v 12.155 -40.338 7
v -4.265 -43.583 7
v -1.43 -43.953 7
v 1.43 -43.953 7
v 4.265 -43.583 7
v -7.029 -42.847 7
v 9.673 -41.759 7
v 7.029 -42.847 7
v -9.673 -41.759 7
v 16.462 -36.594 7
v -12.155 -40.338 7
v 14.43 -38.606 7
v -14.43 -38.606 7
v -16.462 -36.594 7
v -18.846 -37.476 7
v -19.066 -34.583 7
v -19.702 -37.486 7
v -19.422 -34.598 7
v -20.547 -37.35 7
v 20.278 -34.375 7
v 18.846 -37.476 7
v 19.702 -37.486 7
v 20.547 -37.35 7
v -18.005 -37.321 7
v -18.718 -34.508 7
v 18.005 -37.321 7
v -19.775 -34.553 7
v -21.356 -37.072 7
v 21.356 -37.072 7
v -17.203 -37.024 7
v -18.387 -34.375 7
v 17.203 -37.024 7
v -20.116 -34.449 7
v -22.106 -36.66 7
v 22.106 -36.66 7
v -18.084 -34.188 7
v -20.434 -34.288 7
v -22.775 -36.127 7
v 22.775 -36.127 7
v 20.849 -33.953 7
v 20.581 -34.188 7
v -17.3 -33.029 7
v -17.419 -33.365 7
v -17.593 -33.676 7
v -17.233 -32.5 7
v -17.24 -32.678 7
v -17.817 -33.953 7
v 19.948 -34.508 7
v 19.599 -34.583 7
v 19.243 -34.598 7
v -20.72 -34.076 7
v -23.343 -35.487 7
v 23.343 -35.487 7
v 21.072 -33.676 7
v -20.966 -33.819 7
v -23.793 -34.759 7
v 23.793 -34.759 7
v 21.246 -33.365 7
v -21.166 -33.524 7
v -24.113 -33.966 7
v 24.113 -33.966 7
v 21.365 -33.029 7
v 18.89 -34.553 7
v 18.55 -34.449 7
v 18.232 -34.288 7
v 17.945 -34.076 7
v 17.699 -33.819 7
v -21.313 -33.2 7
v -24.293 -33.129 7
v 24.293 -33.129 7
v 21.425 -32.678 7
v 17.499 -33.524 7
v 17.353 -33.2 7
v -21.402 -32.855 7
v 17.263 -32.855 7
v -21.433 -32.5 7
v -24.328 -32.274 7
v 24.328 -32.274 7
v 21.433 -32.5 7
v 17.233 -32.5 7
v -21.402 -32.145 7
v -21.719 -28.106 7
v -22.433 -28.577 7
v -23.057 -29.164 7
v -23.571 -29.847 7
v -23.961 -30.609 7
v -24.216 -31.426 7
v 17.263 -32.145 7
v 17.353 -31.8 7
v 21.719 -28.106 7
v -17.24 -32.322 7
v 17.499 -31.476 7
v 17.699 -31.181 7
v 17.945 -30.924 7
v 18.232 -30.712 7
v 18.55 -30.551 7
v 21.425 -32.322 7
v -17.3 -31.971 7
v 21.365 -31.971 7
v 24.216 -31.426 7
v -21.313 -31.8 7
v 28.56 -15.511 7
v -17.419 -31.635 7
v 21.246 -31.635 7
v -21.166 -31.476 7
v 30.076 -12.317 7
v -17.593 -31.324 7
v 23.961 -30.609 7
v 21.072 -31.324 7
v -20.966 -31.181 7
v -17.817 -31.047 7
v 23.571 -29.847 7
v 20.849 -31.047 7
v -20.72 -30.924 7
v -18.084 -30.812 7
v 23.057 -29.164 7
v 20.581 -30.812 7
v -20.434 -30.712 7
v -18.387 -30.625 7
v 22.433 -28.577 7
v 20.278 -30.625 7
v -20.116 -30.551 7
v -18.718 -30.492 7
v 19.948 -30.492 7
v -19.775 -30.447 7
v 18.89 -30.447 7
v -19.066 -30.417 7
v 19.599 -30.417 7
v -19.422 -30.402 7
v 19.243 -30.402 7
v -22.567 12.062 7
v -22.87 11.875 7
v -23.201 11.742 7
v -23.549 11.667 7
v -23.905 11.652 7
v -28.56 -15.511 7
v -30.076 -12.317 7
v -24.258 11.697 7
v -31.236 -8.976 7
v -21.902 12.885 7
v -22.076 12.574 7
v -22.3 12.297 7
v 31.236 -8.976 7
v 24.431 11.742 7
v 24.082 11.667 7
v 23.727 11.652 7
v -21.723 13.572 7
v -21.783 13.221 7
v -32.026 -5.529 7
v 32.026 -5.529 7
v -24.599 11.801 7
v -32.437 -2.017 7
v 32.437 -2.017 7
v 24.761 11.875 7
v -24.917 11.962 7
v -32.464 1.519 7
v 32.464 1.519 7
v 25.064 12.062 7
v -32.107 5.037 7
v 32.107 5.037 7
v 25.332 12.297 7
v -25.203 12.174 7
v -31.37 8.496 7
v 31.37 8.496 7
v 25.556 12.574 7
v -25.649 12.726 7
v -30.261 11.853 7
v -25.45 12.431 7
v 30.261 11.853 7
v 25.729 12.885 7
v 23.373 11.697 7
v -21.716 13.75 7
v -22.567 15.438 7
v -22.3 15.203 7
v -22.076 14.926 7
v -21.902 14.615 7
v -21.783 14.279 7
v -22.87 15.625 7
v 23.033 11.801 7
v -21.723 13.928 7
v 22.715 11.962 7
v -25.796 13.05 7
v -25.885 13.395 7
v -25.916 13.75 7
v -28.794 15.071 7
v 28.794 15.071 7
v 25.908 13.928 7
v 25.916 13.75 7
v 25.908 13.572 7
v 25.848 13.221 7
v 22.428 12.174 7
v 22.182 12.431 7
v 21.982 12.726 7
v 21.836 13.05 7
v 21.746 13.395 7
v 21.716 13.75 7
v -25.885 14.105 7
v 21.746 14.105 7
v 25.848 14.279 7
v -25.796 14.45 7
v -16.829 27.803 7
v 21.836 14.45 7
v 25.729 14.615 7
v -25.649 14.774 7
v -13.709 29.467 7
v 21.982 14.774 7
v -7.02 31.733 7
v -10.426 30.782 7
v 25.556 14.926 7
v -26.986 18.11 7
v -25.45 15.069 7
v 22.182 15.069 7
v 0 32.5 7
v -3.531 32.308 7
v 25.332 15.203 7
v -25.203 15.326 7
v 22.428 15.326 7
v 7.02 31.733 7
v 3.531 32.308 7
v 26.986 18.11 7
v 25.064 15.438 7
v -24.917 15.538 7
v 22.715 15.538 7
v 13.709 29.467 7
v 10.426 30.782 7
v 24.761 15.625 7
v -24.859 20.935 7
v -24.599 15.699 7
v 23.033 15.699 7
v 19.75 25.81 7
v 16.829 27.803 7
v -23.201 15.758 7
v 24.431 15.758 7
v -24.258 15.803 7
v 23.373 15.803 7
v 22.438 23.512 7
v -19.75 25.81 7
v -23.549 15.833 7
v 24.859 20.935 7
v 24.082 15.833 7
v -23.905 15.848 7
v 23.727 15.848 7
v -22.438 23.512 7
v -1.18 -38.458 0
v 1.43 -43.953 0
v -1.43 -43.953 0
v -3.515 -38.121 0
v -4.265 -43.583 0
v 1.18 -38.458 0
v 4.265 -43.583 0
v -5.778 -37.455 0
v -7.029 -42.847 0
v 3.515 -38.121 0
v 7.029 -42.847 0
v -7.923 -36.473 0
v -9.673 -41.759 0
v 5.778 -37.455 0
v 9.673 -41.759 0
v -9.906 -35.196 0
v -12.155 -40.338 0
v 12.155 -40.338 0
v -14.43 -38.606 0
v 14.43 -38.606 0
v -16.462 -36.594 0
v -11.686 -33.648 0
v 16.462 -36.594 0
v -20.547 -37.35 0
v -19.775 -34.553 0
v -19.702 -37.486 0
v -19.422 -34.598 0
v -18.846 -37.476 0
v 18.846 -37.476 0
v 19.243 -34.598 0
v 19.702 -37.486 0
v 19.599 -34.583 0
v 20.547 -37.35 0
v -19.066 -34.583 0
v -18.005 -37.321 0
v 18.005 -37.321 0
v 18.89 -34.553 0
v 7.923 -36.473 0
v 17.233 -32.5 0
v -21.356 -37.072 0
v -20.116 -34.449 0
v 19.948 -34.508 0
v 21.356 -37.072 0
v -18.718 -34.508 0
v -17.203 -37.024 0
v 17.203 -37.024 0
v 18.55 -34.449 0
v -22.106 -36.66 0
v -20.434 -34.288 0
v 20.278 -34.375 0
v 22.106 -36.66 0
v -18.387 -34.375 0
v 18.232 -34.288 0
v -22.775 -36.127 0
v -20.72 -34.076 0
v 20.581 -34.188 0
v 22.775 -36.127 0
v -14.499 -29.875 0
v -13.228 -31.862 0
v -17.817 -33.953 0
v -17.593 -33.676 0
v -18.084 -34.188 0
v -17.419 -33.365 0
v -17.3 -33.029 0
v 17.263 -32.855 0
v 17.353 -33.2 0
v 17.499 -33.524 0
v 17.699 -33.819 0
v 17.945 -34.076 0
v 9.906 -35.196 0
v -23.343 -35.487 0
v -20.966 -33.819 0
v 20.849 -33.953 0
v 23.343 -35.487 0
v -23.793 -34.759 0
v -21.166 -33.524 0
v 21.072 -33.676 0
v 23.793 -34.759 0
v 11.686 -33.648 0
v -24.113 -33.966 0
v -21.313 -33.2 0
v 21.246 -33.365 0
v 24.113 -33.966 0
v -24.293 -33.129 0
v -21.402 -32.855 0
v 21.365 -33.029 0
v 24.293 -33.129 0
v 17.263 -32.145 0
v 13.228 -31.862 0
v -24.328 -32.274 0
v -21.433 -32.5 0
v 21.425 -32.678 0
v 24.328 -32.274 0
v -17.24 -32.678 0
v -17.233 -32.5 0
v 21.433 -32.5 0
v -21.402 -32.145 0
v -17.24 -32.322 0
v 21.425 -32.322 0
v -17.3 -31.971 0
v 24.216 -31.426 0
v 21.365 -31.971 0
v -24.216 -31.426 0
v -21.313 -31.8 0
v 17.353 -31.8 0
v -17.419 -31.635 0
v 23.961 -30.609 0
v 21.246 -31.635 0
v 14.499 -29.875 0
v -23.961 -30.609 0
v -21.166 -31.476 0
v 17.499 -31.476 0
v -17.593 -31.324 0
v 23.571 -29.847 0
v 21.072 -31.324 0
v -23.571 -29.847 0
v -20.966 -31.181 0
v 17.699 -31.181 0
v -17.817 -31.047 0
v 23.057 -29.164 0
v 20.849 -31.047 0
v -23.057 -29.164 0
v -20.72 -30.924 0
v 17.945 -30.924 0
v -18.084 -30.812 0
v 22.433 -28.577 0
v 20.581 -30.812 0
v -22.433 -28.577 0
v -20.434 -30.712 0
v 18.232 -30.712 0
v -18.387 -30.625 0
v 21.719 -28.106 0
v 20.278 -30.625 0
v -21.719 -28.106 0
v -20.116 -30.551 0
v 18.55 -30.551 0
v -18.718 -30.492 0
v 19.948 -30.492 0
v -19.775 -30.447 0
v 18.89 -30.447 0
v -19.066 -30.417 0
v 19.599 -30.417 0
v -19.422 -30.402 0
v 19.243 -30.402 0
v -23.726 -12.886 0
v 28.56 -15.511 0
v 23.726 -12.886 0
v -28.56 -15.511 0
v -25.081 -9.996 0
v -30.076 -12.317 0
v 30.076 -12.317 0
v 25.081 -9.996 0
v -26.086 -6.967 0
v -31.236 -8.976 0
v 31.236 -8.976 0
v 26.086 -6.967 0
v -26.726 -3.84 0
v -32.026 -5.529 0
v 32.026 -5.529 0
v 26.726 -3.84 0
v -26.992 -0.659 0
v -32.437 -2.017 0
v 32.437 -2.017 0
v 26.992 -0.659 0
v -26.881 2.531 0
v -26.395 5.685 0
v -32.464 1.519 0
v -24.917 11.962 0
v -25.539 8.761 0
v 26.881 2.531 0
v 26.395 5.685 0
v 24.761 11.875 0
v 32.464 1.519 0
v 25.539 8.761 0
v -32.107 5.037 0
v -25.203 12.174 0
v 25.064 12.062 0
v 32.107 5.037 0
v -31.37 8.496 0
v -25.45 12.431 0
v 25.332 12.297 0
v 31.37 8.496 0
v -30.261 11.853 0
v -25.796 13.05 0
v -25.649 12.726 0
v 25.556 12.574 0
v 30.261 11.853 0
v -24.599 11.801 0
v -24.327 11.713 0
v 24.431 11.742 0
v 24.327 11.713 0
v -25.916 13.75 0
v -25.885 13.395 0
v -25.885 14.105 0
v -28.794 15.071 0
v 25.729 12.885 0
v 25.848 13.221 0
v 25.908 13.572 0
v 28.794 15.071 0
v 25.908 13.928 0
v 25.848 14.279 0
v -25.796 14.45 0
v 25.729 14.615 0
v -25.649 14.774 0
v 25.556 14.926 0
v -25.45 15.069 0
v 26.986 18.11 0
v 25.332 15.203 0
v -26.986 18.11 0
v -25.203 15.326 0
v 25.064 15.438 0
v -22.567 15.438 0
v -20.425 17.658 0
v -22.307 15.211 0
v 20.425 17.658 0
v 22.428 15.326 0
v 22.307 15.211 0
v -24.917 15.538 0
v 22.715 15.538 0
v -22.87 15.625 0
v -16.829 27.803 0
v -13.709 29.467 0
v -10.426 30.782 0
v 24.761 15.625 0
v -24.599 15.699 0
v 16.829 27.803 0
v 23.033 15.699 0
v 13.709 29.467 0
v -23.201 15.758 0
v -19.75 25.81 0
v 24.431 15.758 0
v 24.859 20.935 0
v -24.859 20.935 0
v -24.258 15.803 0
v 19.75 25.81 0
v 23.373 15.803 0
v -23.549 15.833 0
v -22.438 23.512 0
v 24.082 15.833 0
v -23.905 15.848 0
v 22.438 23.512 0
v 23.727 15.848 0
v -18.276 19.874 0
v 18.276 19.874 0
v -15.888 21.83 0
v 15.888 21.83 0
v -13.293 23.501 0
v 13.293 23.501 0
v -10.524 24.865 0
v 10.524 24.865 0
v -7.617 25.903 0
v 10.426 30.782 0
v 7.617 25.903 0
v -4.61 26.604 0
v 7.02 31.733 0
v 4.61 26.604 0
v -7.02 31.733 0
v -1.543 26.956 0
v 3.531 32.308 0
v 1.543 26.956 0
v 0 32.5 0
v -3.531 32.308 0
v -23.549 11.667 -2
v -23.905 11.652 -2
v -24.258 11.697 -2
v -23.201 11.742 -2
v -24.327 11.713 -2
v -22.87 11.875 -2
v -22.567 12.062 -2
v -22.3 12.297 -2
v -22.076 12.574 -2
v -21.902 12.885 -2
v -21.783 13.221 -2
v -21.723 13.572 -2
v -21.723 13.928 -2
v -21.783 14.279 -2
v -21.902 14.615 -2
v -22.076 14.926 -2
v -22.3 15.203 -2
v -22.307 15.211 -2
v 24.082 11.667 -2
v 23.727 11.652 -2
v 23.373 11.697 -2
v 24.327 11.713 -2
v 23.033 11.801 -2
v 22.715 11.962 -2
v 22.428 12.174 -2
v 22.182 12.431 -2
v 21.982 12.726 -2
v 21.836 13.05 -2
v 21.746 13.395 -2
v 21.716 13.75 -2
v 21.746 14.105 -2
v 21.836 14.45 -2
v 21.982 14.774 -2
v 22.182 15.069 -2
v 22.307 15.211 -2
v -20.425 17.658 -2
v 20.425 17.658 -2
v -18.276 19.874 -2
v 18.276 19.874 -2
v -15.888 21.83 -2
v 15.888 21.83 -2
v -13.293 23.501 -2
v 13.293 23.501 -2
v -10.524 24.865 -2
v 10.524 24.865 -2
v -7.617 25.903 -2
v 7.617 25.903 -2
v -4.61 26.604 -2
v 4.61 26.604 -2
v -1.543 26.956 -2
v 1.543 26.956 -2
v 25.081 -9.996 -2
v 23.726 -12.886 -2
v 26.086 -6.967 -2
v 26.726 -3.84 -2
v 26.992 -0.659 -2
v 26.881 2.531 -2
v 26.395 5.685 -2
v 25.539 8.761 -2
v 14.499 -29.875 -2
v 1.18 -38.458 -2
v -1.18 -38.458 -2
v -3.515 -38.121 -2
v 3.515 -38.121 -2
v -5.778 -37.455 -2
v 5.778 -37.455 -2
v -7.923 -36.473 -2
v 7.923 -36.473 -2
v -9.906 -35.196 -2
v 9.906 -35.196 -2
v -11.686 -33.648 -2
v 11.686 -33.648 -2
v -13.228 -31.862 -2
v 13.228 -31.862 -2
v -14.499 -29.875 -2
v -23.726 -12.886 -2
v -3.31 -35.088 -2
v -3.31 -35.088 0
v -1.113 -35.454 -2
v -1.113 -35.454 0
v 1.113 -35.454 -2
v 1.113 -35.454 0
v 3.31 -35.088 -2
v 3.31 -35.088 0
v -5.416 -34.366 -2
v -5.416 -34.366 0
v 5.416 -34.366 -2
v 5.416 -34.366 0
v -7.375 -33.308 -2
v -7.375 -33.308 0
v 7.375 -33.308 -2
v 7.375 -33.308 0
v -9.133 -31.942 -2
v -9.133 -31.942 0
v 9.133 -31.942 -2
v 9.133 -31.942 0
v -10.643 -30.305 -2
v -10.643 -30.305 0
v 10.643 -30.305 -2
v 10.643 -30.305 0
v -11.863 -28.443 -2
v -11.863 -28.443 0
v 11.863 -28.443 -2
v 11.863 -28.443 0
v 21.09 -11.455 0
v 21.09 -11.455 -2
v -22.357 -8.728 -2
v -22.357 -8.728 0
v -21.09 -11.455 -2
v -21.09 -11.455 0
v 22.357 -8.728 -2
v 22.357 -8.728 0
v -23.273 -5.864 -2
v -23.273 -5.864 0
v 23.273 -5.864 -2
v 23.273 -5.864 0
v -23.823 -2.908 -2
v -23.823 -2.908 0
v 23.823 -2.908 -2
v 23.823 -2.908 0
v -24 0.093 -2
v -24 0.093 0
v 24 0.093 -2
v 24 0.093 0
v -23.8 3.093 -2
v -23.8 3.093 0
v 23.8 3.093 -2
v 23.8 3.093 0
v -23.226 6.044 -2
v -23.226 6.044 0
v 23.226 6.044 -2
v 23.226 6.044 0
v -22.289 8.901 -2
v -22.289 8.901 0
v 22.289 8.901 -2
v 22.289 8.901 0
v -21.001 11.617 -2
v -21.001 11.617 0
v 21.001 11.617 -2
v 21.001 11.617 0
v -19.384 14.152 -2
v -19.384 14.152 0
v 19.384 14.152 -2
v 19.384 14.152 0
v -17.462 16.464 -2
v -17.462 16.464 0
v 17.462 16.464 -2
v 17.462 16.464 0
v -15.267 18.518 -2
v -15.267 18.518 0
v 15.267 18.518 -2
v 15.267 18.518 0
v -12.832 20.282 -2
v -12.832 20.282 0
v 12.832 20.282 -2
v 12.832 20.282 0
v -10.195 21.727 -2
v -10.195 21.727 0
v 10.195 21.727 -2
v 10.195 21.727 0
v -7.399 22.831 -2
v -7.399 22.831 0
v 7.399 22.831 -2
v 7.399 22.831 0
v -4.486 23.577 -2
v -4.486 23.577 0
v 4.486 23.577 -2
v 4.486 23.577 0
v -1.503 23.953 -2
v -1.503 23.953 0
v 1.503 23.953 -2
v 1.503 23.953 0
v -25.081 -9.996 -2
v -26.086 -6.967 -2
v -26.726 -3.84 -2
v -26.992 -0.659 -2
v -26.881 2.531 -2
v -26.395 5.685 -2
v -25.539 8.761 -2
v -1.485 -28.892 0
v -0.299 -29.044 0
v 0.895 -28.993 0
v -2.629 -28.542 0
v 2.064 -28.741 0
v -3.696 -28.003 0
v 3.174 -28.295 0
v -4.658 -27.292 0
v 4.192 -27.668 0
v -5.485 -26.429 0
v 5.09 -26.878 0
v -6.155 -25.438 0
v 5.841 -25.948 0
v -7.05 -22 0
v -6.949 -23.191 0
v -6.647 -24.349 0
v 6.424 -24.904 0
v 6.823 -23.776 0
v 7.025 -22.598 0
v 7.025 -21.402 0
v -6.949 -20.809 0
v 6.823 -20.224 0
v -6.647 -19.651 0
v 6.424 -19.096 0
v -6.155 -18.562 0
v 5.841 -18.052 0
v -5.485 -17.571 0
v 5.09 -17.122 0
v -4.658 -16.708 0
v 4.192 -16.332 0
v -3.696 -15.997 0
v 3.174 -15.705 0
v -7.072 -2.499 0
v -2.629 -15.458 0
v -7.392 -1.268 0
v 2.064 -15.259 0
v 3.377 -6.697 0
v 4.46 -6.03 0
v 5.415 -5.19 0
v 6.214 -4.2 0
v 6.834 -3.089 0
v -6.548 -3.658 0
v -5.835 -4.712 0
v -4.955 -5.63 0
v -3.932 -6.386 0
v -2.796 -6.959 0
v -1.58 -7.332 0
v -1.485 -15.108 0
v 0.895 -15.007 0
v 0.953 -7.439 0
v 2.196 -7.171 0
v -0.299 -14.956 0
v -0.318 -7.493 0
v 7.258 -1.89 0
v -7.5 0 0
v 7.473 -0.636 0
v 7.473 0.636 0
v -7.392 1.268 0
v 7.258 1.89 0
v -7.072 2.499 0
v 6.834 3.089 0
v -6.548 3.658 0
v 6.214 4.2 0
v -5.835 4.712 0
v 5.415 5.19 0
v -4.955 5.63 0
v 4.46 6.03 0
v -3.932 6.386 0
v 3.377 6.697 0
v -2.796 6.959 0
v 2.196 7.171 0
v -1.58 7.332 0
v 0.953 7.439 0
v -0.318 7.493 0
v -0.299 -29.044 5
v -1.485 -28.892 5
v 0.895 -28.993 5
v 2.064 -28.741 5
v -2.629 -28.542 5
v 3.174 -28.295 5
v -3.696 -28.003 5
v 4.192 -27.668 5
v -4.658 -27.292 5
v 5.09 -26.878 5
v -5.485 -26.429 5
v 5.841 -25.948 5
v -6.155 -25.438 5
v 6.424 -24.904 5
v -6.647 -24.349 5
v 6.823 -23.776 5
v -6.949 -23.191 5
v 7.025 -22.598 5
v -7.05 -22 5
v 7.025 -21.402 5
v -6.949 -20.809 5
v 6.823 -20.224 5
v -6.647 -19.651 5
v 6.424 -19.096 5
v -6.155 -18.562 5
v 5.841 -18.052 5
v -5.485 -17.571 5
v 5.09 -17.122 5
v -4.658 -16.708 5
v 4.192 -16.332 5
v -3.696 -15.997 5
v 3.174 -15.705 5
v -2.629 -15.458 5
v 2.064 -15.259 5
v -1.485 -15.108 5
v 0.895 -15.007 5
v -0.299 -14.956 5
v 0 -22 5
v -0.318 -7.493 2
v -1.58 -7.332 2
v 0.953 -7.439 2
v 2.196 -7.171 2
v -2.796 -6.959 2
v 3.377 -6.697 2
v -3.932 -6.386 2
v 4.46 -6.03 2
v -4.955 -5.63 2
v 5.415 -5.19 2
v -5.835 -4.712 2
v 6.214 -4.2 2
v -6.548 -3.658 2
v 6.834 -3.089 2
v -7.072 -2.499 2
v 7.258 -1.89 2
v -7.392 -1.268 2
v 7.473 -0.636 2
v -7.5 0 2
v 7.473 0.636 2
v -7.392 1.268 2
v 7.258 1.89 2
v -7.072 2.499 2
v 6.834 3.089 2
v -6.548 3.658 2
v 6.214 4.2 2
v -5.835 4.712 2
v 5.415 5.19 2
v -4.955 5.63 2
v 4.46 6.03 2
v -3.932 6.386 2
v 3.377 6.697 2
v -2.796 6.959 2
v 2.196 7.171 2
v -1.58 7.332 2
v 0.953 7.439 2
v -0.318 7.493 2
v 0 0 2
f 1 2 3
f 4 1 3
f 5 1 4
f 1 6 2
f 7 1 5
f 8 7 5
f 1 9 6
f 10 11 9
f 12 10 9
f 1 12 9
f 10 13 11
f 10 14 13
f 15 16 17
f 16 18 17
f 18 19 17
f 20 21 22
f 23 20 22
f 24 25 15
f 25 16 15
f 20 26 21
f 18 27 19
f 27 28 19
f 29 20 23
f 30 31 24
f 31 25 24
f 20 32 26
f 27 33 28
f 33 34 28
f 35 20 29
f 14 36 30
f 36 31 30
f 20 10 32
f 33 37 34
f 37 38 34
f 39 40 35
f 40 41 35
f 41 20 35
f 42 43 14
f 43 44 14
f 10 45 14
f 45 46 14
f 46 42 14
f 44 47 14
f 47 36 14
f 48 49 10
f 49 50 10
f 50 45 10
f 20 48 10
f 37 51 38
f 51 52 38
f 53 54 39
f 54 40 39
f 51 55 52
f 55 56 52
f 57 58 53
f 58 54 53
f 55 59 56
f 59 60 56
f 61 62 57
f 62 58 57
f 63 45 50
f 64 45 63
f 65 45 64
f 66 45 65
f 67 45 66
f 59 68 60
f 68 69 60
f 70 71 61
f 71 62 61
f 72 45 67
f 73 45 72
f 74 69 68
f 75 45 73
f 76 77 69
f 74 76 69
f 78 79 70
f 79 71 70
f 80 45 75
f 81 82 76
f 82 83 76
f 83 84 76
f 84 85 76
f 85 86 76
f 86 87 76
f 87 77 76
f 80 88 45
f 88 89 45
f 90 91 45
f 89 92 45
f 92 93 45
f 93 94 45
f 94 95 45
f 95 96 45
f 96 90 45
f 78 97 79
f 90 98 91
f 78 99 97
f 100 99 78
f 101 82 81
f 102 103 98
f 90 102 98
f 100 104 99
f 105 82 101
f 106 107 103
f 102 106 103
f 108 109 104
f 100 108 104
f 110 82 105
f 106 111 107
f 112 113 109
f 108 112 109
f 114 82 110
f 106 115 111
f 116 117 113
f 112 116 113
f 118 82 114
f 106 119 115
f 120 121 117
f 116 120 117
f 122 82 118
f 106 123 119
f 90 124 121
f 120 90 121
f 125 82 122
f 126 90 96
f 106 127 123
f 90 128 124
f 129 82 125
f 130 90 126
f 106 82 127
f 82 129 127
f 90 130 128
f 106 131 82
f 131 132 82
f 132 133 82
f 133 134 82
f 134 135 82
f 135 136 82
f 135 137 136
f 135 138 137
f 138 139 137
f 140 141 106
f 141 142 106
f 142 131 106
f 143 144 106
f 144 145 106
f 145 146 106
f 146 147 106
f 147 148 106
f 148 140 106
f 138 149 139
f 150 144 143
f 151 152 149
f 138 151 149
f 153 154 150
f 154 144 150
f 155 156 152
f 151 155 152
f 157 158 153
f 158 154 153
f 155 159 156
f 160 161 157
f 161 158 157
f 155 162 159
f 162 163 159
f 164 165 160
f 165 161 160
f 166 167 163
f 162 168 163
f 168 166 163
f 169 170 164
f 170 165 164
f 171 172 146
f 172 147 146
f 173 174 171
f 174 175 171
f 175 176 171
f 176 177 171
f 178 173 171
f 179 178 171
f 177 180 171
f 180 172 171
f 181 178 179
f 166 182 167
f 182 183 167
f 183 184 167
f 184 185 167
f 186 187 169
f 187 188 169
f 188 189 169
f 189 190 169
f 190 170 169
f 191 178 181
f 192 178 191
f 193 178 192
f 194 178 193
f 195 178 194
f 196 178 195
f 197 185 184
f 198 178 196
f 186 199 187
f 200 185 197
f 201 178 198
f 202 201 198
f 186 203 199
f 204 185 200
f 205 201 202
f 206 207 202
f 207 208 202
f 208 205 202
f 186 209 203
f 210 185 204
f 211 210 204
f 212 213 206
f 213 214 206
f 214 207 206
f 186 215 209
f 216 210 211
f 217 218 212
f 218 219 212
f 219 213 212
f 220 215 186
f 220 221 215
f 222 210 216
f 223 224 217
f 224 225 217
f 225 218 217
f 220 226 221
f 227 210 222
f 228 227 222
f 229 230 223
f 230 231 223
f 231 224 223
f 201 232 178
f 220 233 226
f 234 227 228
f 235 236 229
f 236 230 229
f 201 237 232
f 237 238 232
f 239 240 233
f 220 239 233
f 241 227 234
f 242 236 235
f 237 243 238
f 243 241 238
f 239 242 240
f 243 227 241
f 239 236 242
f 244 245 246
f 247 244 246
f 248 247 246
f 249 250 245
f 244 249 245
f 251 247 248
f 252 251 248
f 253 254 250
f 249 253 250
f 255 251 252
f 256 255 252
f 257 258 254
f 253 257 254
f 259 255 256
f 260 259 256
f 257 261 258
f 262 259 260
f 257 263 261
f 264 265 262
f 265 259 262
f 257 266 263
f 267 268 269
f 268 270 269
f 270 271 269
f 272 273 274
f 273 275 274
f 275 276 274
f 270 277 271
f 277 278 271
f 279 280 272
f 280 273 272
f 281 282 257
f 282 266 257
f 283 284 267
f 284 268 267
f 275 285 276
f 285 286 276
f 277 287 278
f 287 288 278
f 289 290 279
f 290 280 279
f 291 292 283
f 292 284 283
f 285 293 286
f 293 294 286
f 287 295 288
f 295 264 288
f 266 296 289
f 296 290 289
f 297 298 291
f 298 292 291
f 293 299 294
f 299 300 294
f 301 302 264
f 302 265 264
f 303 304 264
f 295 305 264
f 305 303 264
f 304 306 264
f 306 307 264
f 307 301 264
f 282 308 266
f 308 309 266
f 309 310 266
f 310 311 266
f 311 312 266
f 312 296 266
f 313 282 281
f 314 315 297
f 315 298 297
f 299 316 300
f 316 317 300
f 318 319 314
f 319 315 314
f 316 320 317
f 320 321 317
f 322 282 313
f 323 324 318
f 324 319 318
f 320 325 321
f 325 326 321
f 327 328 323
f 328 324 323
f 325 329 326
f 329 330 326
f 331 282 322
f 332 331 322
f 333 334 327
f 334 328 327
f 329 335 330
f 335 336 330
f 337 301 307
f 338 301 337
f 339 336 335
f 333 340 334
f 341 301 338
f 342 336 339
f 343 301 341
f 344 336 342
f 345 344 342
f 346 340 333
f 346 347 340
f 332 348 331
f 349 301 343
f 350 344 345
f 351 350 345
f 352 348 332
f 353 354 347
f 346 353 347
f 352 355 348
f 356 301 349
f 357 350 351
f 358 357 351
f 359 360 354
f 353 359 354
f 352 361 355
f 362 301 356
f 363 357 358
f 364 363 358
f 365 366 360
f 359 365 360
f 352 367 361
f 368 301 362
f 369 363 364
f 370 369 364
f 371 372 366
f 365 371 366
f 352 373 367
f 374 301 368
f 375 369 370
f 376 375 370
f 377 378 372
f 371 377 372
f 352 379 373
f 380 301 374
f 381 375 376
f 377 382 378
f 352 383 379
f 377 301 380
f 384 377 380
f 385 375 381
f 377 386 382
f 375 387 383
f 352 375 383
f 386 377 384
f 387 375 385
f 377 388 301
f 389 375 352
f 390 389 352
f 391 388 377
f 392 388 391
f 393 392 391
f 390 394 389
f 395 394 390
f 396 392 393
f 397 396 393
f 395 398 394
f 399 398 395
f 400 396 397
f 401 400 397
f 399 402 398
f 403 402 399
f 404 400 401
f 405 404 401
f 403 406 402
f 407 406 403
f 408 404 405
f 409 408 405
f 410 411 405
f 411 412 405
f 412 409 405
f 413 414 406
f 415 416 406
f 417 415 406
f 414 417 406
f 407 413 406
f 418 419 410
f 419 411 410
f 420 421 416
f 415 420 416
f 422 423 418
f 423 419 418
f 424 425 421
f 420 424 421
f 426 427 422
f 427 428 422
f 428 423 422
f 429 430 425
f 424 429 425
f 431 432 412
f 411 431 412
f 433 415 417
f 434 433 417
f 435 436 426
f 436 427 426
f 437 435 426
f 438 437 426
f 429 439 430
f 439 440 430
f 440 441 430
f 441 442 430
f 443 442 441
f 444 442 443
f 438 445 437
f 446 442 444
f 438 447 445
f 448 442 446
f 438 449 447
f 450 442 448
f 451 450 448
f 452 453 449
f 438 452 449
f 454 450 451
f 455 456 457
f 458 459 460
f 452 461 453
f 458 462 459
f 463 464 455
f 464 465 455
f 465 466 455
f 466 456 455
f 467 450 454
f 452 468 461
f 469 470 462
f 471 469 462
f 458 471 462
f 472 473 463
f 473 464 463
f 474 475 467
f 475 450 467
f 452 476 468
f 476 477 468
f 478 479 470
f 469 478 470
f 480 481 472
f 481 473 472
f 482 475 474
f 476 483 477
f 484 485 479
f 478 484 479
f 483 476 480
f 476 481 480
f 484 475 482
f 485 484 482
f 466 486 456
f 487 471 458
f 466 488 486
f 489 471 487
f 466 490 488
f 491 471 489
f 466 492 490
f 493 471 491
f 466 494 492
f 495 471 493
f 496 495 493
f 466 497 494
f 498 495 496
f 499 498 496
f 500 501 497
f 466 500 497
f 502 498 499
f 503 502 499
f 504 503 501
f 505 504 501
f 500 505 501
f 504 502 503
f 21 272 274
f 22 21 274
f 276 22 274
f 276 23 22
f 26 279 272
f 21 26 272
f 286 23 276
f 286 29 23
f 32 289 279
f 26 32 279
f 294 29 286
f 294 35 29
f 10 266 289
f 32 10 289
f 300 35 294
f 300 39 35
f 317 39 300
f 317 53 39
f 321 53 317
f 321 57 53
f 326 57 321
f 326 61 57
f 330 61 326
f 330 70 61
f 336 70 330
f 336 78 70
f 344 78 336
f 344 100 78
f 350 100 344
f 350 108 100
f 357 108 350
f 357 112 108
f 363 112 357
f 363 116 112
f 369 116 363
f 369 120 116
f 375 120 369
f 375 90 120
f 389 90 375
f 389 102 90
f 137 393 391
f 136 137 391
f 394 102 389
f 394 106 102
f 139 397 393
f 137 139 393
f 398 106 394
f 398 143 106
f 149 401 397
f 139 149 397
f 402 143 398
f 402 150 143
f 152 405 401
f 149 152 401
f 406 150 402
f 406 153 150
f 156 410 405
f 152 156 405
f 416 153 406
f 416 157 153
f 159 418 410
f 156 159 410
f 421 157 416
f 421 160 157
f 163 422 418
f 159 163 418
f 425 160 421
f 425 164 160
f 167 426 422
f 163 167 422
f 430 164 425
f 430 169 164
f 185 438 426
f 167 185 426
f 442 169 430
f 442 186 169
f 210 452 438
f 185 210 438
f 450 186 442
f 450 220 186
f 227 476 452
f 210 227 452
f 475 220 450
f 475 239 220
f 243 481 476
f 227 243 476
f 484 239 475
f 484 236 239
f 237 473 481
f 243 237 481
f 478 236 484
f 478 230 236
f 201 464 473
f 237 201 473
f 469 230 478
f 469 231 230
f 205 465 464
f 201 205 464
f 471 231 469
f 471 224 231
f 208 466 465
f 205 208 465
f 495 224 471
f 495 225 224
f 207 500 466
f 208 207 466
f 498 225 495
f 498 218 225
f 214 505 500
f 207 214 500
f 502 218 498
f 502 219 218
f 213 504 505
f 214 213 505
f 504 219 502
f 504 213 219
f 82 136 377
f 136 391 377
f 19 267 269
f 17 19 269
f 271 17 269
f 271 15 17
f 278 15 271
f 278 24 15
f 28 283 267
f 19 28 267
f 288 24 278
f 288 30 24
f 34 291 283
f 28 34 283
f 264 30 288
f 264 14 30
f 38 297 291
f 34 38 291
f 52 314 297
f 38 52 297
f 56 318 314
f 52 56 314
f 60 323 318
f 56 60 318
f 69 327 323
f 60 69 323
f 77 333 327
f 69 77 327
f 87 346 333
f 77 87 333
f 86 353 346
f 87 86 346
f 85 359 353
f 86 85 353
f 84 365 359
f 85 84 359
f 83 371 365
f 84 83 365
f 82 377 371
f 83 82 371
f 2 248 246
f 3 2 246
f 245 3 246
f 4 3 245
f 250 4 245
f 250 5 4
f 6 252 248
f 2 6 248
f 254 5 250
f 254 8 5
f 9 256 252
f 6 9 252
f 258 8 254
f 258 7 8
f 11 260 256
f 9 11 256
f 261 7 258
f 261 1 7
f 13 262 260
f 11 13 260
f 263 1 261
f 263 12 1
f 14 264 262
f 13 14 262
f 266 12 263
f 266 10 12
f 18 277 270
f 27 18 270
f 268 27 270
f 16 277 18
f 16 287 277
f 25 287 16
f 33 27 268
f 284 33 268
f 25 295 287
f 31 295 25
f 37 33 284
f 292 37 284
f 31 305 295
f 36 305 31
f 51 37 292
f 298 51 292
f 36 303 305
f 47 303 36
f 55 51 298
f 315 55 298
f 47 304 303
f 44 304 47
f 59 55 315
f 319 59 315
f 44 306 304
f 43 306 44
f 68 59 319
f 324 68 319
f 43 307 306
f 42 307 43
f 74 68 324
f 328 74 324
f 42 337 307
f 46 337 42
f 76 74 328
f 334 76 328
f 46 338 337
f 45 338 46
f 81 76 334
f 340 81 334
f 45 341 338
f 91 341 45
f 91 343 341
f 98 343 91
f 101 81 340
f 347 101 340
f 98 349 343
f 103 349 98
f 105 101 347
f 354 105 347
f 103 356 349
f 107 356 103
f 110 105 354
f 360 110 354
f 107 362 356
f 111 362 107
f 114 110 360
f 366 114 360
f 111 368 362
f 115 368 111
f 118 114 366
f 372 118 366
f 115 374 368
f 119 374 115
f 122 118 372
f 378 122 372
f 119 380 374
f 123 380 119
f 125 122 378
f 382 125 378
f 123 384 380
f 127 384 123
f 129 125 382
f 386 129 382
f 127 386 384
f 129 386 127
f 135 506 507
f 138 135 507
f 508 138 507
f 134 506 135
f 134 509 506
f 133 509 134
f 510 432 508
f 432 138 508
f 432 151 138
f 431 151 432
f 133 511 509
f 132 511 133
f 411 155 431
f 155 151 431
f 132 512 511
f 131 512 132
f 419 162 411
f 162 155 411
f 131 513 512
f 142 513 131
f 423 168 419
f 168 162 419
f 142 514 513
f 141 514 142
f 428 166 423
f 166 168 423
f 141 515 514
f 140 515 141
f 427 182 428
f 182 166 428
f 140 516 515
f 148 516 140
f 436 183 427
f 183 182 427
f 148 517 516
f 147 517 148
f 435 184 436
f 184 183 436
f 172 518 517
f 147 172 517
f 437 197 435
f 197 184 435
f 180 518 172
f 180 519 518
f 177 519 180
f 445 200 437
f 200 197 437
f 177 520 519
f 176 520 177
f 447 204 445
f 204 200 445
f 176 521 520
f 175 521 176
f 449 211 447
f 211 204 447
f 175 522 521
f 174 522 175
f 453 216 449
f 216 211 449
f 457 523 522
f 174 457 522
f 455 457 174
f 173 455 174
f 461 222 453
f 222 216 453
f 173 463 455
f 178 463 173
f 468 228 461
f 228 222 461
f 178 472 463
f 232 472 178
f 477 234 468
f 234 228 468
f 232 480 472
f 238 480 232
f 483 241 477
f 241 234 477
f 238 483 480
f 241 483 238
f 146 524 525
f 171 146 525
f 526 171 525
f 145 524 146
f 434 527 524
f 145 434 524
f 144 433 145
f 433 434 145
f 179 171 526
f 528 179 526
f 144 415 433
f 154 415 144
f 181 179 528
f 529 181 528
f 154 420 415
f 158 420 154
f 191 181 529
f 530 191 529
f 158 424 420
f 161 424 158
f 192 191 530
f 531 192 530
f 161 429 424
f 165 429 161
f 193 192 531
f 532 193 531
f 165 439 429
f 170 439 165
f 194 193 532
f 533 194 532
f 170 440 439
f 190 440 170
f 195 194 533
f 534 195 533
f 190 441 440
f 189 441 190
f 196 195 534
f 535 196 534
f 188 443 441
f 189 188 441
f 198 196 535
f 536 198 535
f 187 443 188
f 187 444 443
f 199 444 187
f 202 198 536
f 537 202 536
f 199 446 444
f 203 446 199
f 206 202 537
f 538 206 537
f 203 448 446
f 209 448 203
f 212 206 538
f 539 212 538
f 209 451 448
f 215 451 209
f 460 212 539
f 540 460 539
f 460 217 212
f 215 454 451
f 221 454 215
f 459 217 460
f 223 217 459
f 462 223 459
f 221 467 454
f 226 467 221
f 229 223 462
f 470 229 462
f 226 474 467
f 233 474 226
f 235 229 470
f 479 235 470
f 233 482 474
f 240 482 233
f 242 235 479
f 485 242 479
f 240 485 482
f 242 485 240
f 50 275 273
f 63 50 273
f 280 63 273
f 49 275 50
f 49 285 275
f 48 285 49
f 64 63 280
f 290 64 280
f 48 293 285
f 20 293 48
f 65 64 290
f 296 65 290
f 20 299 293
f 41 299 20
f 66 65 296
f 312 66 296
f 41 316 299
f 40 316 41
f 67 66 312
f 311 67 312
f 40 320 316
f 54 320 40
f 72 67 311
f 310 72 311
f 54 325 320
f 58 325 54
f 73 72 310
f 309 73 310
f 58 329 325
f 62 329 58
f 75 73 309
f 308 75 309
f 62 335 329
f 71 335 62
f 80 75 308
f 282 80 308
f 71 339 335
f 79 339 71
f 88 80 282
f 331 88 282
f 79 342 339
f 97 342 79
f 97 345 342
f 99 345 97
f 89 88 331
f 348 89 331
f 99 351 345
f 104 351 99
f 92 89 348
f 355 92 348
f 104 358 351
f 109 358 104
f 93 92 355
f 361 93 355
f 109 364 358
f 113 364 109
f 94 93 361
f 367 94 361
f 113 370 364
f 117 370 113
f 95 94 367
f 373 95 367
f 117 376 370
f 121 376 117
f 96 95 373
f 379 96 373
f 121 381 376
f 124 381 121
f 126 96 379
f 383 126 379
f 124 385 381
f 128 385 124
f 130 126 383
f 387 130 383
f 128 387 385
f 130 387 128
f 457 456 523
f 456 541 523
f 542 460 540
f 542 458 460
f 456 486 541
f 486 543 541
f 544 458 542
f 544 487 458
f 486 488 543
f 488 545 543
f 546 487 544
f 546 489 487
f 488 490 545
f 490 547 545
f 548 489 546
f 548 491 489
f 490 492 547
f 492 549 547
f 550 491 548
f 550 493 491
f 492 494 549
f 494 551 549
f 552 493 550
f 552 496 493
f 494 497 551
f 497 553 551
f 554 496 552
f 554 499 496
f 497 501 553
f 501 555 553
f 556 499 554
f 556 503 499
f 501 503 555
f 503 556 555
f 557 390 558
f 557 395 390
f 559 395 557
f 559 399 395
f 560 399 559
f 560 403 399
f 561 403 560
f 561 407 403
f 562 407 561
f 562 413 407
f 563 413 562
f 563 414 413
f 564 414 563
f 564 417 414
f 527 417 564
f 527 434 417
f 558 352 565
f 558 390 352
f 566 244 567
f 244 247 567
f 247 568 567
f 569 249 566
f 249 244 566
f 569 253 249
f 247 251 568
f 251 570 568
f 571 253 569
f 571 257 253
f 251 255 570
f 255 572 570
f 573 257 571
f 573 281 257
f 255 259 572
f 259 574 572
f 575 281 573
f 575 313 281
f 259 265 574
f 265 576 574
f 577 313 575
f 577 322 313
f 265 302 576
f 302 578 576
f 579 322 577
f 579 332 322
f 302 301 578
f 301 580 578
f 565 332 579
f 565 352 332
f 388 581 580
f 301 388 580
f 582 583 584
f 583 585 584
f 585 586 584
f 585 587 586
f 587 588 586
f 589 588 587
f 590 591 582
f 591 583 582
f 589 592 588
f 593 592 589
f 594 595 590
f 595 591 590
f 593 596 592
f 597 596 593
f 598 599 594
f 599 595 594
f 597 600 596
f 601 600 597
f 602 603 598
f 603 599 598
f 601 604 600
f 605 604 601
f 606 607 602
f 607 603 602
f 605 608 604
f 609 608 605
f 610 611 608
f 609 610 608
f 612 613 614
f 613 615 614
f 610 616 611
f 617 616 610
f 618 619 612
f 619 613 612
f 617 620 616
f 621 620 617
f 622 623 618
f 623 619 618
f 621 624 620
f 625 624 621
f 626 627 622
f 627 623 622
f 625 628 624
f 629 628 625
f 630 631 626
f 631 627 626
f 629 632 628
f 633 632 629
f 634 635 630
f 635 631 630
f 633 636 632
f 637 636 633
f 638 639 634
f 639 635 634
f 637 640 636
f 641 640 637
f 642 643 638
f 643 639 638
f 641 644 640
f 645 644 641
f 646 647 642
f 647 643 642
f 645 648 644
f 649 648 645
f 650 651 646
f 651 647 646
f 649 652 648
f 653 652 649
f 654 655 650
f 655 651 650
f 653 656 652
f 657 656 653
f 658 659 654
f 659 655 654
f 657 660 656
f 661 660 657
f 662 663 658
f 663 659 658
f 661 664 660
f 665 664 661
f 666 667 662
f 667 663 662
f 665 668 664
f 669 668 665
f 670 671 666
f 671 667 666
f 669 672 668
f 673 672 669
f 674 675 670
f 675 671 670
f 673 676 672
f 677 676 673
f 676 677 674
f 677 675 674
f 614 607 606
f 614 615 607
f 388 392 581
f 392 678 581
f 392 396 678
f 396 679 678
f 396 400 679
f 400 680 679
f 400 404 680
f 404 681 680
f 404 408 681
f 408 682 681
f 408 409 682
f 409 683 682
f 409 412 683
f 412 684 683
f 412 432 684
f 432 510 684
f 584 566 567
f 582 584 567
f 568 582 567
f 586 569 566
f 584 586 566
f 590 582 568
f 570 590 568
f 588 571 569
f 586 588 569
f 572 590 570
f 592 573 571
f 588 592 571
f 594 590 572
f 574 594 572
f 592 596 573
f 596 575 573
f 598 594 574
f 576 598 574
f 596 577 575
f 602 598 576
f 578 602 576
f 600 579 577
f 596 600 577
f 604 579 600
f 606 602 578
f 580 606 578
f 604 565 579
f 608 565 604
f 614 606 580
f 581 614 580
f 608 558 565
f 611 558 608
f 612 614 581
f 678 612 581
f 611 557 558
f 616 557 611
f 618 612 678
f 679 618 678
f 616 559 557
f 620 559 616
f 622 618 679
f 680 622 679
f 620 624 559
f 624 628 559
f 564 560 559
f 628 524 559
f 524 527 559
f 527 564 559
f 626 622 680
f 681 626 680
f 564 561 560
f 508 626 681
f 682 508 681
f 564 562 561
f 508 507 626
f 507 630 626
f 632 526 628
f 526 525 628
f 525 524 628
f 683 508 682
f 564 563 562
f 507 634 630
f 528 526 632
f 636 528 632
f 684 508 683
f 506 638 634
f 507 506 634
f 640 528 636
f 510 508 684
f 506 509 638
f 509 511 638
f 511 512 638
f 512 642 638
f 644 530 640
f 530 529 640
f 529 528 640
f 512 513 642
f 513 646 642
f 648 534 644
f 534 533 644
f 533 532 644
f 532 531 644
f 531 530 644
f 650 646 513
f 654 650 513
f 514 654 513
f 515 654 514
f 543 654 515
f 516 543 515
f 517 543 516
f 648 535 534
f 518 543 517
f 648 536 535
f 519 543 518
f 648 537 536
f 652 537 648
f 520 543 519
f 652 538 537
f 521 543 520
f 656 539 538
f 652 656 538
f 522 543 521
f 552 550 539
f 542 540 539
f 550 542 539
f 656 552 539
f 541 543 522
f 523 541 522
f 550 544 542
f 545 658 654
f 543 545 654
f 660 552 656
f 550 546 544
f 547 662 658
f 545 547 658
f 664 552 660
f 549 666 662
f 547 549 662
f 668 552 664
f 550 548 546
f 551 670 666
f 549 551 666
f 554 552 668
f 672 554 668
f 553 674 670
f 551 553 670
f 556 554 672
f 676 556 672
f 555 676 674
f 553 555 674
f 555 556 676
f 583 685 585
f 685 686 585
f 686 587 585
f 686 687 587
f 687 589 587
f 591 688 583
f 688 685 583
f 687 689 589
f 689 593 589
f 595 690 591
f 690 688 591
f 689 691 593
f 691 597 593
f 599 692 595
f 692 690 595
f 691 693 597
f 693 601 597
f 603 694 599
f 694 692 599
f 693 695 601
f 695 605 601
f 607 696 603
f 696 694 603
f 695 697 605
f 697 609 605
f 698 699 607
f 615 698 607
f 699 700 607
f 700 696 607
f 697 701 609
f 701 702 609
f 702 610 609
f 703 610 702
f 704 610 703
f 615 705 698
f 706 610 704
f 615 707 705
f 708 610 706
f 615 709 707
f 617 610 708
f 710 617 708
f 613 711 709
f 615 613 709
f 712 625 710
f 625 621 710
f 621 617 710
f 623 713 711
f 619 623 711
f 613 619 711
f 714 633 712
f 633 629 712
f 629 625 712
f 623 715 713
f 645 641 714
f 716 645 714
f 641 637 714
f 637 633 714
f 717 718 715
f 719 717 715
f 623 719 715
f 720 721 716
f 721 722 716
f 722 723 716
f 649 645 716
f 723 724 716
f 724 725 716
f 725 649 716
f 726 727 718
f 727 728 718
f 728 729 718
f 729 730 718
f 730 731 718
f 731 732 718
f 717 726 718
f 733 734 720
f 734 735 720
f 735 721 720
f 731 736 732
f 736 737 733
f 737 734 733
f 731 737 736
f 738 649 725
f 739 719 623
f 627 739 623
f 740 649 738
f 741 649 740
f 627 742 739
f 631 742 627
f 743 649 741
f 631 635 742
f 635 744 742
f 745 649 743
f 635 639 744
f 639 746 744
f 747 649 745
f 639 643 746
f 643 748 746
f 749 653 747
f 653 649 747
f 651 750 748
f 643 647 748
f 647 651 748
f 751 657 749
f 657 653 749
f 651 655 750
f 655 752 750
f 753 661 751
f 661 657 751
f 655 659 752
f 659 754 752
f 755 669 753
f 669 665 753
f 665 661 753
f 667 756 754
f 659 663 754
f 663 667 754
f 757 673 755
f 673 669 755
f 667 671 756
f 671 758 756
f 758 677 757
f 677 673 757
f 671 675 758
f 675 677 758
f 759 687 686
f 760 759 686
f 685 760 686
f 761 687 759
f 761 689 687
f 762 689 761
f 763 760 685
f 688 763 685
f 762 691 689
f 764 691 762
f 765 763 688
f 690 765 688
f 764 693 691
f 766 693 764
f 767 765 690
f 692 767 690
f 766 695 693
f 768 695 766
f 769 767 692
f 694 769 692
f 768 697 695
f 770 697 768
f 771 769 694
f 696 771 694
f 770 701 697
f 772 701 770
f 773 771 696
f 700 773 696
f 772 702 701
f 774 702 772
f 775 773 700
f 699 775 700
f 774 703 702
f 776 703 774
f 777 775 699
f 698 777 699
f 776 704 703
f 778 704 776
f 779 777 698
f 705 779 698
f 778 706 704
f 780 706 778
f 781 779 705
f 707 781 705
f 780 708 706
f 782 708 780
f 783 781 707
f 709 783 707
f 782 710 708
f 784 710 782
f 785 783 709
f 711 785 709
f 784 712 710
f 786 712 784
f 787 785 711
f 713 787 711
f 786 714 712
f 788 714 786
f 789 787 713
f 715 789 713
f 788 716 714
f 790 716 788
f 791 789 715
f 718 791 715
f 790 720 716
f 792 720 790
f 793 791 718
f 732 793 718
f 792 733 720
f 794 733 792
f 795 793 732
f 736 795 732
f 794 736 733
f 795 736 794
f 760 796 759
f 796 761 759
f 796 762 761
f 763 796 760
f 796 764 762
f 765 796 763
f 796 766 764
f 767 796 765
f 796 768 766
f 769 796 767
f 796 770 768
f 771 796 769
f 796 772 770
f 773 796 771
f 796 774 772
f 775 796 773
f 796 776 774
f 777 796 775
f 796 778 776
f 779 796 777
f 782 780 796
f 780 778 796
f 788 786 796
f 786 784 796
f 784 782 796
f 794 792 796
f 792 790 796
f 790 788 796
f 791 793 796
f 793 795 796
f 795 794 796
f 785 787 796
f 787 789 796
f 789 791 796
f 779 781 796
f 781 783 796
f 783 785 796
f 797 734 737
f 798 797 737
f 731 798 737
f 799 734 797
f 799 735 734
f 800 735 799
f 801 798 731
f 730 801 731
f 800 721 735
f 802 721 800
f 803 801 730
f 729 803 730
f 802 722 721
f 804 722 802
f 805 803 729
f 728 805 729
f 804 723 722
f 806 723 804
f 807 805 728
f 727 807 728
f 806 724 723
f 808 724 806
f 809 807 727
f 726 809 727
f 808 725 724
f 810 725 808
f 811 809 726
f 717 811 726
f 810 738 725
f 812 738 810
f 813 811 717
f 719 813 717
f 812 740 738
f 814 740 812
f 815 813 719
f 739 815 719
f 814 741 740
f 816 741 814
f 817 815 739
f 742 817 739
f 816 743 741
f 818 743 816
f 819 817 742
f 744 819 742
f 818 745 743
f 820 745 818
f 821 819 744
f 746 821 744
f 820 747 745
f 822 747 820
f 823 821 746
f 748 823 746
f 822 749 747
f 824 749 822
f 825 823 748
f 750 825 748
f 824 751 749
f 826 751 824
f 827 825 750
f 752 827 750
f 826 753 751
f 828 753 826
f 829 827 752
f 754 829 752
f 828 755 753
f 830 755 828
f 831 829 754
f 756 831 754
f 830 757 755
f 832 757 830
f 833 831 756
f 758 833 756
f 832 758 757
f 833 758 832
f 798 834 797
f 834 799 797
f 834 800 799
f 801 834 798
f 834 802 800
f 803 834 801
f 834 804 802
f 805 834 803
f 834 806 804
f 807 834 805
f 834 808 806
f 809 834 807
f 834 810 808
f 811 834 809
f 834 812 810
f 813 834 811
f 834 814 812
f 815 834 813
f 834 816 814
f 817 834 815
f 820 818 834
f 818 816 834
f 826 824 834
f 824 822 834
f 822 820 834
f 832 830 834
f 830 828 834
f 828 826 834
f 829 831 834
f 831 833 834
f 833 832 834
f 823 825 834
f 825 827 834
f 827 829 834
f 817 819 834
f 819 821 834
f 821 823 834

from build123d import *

# Parameters (mm, degrees)
SKETCH1_R           = 2.1
BOSS_EXTRUDE1_DEPTH = 7
BOSS_EXTRUDE2_START = 2
BOSS_EXTRUDE2_DEPTH = 2
SKETCH3_R           = 7.05
CUT_EXTRUDE1_DEPTH  = 5
SKETCH4_R           = 7.5
CUT_EXTRUDE2_DEPTH  = 2


with BuildPart() as part:
    # Sketch1 → Boss-Extrude1 (new body)
    with BuildSketch(Plane.XY):
        with BuildLine():
            Line((-28.559544782, -15.511363636), (-21.718978566, -28.10622388))
            ThreePointArc((-21.718978566, -28.10622388), (-23.583461057, -35.132547662), (-16.46241644, -36.594137349))
            ThreePointArc((-16.46241644, -36.594137349), (0, -44), (16.46241644, -36.594137349))
            ThreePointArc((16.46241644, -36.594137349), (23.583461057, -35.132547662), (21.718978566, -28.10622388))
            Line((21.718978566, -28.10622388), (28.559544782, -15.511363636))
            ThreePointArc((28.559544782, -15.511363636), (0, 32.5), (-28.559544782, -15.511363636))
        make_face()
        with Locations((-23.815698604, 13.75)):
            Circle(SKETCH1_R, mode=Mode.SUBTRACT)
        with Locations((23.815698604, 13.75)):
            Circle(SKETCH1_R, mode=Mode.SUBTRACT)
        with Locations((-19.332614929, -32.5)):
            Circle(SKETCH1_R, mode=Mode.SUBTRACT)
        with Locations((19.332614929, -32.5)):
            Circle(SKETCH1_R, mode=Mode.SUBTRACT)
    extrude(amount=BOSS_EXTRUDE1_DEPTH)

    # Sketch2 → Boss-Extrude2 (add)
    with BuildSketch(Plane(origin=(0, 0, 0), x_dir=(-1, 0, 0), z_dir=(0, 0, -1)).offset(BOSS_EXTRUDE2_START)):
        with BuildLine():
            Line((-23.726391049, -12.886363636), (-14.499461197, -29.875))
            ThreePointArc((-14.499461197, -29.875), (0, -38.5), (14.499461197, -29.875))
            Line((14.499461197, -29.875), (23.726391049, -12.886363636))
            ThreePointArc((23.726391049, -12.886363636), (26.991956985, -0.65898263), (24.326965388, 11.713187226))
            ThreePointArc((24.326965388, 11.713187226), (21.997045256, 12.7), (22.307400391, 15.21117641))
            ThreePointArc((22.307400391, 15.21117641), (0, 27), (-22.307400391, 15.21117641))
            ThreePointArc((-22.307400391, 15.21117641), (-21.997045256, 12.7), (-24.326965388, 11.713187226))
            ThreePointArc((-24.326965388, 11.713187226), (-26.991956985, -0.65898263), (-23.726391049, -12.886363636))
        make_face()
        with BuildLine():
            Line((-21.090125377, -11.454545455), (-11.863195525, -28.443181818))
            ThreePointArc((-11.863195525, -28.443181818), (0, -35.5), (11.863195525, -28.443181818))
            Line((11.863195525, -28.443181818), (21.090125377, -11.454545455))
            ThreePointArc((21.090125377, -11.454545455), (0, 24), (-21.090125377, -11.454545455))
        make_face(mode=Mode.SUBTRACT)
    extrude(amount=-BOSS_EXTRUDE2_DEPTH)

    # Sketch3 → Cut-Extrude1 (cut)
    with BuildSketch(Plane(origin=(0, 0, 0), x_dir=(-1, 0, 0), z_dir=(0, 0, -1))):
        with Locations((0, -22)):
            Circle(SKETCH3_R)
    extrude(amount=-CUT_EXTRUDE1_DEPTH, mode=Mode.SUBTRACT)

    # Sketch4 → Cut-Extrude2 (cut)
    with BuildSketch(Plane(origin=(0, 0, 0), x_dir=(-1, 0, 0), z_dir=(0, 0, -1))):
        Circle(SKETCH4_R)
    extrude(amount=-CUT_EXTRUDE2_DEPTH, mode=Mode.SUBTRACT)


solid = part.part
